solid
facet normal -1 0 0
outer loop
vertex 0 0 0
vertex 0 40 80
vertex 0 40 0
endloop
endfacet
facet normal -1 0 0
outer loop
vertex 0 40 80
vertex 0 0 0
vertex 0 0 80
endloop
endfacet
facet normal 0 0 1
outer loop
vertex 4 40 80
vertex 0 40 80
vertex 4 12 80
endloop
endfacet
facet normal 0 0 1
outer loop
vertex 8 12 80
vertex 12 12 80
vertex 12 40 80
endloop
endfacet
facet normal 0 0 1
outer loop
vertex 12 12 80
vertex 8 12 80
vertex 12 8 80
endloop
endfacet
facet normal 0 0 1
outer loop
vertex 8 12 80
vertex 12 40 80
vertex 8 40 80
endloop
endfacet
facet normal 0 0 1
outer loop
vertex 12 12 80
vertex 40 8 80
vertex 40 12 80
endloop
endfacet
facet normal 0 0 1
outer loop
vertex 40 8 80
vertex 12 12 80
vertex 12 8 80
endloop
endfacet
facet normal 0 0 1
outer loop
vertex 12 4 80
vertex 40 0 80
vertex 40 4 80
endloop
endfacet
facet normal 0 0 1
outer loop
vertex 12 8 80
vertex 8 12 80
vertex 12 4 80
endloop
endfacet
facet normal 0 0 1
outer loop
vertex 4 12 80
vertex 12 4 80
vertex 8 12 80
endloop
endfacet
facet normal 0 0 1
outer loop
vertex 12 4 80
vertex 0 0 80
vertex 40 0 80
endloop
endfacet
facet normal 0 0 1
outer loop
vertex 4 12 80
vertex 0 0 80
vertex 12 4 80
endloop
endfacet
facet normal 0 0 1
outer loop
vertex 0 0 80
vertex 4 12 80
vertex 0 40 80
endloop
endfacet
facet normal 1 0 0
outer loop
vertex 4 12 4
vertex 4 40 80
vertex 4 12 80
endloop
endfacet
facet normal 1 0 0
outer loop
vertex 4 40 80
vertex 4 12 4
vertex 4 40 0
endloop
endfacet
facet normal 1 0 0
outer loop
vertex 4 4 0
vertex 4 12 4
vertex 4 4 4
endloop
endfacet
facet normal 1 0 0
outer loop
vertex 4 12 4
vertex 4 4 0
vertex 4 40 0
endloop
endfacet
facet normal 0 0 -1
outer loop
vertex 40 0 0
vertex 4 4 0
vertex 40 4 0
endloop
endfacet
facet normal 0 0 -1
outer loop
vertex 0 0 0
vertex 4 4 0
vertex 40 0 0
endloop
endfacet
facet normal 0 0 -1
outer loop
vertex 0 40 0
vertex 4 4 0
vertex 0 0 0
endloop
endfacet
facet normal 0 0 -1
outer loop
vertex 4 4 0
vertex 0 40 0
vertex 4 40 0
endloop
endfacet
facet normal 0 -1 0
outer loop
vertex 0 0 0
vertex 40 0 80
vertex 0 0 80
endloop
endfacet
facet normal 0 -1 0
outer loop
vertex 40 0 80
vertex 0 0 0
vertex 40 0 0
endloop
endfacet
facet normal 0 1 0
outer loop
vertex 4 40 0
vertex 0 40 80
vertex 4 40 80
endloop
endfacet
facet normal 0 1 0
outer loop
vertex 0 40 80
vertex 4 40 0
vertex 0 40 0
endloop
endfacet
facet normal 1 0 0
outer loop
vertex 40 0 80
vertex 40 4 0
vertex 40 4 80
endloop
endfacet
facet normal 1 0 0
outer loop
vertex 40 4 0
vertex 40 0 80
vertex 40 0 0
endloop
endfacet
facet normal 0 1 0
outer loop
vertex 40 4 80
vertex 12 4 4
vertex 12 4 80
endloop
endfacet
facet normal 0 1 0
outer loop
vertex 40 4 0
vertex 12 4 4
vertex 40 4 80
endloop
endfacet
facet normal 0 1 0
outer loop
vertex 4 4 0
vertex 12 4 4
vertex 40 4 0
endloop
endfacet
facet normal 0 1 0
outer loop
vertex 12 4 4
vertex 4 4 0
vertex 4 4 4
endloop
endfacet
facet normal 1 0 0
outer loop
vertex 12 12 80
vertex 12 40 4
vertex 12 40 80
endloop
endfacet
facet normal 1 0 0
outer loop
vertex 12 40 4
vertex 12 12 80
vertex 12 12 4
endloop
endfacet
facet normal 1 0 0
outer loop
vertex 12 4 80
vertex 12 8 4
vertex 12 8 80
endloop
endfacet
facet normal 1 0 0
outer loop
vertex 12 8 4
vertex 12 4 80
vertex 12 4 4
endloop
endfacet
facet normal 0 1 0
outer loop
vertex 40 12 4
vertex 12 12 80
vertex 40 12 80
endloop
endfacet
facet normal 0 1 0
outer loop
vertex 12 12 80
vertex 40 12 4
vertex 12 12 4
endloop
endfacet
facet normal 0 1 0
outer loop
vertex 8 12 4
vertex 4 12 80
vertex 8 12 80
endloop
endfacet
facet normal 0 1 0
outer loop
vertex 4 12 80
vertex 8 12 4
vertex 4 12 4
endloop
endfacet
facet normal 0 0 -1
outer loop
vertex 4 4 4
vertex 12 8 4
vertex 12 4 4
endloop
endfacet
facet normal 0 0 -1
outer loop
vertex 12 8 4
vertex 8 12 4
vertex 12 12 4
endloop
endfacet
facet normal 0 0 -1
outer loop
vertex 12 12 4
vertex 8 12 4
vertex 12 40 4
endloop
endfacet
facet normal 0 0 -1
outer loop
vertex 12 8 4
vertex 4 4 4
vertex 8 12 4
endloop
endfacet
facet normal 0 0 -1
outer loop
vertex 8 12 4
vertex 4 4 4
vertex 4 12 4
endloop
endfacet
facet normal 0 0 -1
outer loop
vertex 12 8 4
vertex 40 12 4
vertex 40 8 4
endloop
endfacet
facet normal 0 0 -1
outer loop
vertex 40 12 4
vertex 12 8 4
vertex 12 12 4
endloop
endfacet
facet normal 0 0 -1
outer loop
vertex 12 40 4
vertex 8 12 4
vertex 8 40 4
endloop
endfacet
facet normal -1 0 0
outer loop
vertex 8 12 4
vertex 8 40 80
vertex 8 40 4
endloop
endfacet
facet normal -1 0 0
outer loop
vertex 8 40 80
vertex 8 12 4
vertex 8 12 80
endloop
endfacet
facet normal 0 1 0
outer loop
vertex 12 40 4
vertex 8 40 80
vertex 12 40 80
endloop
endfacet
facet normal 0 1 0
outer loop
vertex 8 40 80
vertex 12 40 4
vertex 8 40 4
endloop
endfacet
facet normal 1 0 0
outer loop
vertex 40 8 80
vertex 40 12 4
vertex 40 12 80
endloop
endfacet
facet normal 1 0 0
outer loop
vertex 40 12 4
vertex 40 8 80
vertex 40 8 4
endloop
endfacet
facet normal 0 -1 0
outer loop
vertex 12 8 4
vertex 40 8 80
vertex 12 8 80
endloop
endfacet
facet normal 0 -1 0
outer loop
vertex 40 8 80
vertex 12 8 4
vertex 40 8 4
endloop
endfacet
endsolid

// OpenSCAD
/**
 * Corner join for working sides to bottom
 *  (or top)
 * @author R. S. Doiel, <rsdoiel@gmail.com>
 * copyright (c) 2016 all rights reserved
 * Released under a BSD 2-clause license
 */

/*
 * Corner
 * @param w - the width, height and depth
 * @param t - thickness of sides to join
 */
module corner (t) {
    echo("thickness: ", t);
    a = t;
    b = t*10;
    c = t*20;

    /* baseplate */
    //color([a,0,0]) cube([b,b,a]);
    

    /* outside 1 */
    color([1,0,0]) cube([a,b,c]);
    
    /* outside 2 */
    color([1,0,0]) cube([b,a,c]);

    /* core */
    translate([t, t, t]) {
        color([1,0,0]) cube([t*2,t*2,c-t]);
    }

    /* inside 1 */
    translate([t*2, 0, t]) {
        color([1,1,0]) cube([a,b,c-t]);
    }

    /* inside 2 */
    translate([0, t*2, t]) {
        color([1,1,0]) cube([b,a,c-t]);
    }
}

corner(4);
